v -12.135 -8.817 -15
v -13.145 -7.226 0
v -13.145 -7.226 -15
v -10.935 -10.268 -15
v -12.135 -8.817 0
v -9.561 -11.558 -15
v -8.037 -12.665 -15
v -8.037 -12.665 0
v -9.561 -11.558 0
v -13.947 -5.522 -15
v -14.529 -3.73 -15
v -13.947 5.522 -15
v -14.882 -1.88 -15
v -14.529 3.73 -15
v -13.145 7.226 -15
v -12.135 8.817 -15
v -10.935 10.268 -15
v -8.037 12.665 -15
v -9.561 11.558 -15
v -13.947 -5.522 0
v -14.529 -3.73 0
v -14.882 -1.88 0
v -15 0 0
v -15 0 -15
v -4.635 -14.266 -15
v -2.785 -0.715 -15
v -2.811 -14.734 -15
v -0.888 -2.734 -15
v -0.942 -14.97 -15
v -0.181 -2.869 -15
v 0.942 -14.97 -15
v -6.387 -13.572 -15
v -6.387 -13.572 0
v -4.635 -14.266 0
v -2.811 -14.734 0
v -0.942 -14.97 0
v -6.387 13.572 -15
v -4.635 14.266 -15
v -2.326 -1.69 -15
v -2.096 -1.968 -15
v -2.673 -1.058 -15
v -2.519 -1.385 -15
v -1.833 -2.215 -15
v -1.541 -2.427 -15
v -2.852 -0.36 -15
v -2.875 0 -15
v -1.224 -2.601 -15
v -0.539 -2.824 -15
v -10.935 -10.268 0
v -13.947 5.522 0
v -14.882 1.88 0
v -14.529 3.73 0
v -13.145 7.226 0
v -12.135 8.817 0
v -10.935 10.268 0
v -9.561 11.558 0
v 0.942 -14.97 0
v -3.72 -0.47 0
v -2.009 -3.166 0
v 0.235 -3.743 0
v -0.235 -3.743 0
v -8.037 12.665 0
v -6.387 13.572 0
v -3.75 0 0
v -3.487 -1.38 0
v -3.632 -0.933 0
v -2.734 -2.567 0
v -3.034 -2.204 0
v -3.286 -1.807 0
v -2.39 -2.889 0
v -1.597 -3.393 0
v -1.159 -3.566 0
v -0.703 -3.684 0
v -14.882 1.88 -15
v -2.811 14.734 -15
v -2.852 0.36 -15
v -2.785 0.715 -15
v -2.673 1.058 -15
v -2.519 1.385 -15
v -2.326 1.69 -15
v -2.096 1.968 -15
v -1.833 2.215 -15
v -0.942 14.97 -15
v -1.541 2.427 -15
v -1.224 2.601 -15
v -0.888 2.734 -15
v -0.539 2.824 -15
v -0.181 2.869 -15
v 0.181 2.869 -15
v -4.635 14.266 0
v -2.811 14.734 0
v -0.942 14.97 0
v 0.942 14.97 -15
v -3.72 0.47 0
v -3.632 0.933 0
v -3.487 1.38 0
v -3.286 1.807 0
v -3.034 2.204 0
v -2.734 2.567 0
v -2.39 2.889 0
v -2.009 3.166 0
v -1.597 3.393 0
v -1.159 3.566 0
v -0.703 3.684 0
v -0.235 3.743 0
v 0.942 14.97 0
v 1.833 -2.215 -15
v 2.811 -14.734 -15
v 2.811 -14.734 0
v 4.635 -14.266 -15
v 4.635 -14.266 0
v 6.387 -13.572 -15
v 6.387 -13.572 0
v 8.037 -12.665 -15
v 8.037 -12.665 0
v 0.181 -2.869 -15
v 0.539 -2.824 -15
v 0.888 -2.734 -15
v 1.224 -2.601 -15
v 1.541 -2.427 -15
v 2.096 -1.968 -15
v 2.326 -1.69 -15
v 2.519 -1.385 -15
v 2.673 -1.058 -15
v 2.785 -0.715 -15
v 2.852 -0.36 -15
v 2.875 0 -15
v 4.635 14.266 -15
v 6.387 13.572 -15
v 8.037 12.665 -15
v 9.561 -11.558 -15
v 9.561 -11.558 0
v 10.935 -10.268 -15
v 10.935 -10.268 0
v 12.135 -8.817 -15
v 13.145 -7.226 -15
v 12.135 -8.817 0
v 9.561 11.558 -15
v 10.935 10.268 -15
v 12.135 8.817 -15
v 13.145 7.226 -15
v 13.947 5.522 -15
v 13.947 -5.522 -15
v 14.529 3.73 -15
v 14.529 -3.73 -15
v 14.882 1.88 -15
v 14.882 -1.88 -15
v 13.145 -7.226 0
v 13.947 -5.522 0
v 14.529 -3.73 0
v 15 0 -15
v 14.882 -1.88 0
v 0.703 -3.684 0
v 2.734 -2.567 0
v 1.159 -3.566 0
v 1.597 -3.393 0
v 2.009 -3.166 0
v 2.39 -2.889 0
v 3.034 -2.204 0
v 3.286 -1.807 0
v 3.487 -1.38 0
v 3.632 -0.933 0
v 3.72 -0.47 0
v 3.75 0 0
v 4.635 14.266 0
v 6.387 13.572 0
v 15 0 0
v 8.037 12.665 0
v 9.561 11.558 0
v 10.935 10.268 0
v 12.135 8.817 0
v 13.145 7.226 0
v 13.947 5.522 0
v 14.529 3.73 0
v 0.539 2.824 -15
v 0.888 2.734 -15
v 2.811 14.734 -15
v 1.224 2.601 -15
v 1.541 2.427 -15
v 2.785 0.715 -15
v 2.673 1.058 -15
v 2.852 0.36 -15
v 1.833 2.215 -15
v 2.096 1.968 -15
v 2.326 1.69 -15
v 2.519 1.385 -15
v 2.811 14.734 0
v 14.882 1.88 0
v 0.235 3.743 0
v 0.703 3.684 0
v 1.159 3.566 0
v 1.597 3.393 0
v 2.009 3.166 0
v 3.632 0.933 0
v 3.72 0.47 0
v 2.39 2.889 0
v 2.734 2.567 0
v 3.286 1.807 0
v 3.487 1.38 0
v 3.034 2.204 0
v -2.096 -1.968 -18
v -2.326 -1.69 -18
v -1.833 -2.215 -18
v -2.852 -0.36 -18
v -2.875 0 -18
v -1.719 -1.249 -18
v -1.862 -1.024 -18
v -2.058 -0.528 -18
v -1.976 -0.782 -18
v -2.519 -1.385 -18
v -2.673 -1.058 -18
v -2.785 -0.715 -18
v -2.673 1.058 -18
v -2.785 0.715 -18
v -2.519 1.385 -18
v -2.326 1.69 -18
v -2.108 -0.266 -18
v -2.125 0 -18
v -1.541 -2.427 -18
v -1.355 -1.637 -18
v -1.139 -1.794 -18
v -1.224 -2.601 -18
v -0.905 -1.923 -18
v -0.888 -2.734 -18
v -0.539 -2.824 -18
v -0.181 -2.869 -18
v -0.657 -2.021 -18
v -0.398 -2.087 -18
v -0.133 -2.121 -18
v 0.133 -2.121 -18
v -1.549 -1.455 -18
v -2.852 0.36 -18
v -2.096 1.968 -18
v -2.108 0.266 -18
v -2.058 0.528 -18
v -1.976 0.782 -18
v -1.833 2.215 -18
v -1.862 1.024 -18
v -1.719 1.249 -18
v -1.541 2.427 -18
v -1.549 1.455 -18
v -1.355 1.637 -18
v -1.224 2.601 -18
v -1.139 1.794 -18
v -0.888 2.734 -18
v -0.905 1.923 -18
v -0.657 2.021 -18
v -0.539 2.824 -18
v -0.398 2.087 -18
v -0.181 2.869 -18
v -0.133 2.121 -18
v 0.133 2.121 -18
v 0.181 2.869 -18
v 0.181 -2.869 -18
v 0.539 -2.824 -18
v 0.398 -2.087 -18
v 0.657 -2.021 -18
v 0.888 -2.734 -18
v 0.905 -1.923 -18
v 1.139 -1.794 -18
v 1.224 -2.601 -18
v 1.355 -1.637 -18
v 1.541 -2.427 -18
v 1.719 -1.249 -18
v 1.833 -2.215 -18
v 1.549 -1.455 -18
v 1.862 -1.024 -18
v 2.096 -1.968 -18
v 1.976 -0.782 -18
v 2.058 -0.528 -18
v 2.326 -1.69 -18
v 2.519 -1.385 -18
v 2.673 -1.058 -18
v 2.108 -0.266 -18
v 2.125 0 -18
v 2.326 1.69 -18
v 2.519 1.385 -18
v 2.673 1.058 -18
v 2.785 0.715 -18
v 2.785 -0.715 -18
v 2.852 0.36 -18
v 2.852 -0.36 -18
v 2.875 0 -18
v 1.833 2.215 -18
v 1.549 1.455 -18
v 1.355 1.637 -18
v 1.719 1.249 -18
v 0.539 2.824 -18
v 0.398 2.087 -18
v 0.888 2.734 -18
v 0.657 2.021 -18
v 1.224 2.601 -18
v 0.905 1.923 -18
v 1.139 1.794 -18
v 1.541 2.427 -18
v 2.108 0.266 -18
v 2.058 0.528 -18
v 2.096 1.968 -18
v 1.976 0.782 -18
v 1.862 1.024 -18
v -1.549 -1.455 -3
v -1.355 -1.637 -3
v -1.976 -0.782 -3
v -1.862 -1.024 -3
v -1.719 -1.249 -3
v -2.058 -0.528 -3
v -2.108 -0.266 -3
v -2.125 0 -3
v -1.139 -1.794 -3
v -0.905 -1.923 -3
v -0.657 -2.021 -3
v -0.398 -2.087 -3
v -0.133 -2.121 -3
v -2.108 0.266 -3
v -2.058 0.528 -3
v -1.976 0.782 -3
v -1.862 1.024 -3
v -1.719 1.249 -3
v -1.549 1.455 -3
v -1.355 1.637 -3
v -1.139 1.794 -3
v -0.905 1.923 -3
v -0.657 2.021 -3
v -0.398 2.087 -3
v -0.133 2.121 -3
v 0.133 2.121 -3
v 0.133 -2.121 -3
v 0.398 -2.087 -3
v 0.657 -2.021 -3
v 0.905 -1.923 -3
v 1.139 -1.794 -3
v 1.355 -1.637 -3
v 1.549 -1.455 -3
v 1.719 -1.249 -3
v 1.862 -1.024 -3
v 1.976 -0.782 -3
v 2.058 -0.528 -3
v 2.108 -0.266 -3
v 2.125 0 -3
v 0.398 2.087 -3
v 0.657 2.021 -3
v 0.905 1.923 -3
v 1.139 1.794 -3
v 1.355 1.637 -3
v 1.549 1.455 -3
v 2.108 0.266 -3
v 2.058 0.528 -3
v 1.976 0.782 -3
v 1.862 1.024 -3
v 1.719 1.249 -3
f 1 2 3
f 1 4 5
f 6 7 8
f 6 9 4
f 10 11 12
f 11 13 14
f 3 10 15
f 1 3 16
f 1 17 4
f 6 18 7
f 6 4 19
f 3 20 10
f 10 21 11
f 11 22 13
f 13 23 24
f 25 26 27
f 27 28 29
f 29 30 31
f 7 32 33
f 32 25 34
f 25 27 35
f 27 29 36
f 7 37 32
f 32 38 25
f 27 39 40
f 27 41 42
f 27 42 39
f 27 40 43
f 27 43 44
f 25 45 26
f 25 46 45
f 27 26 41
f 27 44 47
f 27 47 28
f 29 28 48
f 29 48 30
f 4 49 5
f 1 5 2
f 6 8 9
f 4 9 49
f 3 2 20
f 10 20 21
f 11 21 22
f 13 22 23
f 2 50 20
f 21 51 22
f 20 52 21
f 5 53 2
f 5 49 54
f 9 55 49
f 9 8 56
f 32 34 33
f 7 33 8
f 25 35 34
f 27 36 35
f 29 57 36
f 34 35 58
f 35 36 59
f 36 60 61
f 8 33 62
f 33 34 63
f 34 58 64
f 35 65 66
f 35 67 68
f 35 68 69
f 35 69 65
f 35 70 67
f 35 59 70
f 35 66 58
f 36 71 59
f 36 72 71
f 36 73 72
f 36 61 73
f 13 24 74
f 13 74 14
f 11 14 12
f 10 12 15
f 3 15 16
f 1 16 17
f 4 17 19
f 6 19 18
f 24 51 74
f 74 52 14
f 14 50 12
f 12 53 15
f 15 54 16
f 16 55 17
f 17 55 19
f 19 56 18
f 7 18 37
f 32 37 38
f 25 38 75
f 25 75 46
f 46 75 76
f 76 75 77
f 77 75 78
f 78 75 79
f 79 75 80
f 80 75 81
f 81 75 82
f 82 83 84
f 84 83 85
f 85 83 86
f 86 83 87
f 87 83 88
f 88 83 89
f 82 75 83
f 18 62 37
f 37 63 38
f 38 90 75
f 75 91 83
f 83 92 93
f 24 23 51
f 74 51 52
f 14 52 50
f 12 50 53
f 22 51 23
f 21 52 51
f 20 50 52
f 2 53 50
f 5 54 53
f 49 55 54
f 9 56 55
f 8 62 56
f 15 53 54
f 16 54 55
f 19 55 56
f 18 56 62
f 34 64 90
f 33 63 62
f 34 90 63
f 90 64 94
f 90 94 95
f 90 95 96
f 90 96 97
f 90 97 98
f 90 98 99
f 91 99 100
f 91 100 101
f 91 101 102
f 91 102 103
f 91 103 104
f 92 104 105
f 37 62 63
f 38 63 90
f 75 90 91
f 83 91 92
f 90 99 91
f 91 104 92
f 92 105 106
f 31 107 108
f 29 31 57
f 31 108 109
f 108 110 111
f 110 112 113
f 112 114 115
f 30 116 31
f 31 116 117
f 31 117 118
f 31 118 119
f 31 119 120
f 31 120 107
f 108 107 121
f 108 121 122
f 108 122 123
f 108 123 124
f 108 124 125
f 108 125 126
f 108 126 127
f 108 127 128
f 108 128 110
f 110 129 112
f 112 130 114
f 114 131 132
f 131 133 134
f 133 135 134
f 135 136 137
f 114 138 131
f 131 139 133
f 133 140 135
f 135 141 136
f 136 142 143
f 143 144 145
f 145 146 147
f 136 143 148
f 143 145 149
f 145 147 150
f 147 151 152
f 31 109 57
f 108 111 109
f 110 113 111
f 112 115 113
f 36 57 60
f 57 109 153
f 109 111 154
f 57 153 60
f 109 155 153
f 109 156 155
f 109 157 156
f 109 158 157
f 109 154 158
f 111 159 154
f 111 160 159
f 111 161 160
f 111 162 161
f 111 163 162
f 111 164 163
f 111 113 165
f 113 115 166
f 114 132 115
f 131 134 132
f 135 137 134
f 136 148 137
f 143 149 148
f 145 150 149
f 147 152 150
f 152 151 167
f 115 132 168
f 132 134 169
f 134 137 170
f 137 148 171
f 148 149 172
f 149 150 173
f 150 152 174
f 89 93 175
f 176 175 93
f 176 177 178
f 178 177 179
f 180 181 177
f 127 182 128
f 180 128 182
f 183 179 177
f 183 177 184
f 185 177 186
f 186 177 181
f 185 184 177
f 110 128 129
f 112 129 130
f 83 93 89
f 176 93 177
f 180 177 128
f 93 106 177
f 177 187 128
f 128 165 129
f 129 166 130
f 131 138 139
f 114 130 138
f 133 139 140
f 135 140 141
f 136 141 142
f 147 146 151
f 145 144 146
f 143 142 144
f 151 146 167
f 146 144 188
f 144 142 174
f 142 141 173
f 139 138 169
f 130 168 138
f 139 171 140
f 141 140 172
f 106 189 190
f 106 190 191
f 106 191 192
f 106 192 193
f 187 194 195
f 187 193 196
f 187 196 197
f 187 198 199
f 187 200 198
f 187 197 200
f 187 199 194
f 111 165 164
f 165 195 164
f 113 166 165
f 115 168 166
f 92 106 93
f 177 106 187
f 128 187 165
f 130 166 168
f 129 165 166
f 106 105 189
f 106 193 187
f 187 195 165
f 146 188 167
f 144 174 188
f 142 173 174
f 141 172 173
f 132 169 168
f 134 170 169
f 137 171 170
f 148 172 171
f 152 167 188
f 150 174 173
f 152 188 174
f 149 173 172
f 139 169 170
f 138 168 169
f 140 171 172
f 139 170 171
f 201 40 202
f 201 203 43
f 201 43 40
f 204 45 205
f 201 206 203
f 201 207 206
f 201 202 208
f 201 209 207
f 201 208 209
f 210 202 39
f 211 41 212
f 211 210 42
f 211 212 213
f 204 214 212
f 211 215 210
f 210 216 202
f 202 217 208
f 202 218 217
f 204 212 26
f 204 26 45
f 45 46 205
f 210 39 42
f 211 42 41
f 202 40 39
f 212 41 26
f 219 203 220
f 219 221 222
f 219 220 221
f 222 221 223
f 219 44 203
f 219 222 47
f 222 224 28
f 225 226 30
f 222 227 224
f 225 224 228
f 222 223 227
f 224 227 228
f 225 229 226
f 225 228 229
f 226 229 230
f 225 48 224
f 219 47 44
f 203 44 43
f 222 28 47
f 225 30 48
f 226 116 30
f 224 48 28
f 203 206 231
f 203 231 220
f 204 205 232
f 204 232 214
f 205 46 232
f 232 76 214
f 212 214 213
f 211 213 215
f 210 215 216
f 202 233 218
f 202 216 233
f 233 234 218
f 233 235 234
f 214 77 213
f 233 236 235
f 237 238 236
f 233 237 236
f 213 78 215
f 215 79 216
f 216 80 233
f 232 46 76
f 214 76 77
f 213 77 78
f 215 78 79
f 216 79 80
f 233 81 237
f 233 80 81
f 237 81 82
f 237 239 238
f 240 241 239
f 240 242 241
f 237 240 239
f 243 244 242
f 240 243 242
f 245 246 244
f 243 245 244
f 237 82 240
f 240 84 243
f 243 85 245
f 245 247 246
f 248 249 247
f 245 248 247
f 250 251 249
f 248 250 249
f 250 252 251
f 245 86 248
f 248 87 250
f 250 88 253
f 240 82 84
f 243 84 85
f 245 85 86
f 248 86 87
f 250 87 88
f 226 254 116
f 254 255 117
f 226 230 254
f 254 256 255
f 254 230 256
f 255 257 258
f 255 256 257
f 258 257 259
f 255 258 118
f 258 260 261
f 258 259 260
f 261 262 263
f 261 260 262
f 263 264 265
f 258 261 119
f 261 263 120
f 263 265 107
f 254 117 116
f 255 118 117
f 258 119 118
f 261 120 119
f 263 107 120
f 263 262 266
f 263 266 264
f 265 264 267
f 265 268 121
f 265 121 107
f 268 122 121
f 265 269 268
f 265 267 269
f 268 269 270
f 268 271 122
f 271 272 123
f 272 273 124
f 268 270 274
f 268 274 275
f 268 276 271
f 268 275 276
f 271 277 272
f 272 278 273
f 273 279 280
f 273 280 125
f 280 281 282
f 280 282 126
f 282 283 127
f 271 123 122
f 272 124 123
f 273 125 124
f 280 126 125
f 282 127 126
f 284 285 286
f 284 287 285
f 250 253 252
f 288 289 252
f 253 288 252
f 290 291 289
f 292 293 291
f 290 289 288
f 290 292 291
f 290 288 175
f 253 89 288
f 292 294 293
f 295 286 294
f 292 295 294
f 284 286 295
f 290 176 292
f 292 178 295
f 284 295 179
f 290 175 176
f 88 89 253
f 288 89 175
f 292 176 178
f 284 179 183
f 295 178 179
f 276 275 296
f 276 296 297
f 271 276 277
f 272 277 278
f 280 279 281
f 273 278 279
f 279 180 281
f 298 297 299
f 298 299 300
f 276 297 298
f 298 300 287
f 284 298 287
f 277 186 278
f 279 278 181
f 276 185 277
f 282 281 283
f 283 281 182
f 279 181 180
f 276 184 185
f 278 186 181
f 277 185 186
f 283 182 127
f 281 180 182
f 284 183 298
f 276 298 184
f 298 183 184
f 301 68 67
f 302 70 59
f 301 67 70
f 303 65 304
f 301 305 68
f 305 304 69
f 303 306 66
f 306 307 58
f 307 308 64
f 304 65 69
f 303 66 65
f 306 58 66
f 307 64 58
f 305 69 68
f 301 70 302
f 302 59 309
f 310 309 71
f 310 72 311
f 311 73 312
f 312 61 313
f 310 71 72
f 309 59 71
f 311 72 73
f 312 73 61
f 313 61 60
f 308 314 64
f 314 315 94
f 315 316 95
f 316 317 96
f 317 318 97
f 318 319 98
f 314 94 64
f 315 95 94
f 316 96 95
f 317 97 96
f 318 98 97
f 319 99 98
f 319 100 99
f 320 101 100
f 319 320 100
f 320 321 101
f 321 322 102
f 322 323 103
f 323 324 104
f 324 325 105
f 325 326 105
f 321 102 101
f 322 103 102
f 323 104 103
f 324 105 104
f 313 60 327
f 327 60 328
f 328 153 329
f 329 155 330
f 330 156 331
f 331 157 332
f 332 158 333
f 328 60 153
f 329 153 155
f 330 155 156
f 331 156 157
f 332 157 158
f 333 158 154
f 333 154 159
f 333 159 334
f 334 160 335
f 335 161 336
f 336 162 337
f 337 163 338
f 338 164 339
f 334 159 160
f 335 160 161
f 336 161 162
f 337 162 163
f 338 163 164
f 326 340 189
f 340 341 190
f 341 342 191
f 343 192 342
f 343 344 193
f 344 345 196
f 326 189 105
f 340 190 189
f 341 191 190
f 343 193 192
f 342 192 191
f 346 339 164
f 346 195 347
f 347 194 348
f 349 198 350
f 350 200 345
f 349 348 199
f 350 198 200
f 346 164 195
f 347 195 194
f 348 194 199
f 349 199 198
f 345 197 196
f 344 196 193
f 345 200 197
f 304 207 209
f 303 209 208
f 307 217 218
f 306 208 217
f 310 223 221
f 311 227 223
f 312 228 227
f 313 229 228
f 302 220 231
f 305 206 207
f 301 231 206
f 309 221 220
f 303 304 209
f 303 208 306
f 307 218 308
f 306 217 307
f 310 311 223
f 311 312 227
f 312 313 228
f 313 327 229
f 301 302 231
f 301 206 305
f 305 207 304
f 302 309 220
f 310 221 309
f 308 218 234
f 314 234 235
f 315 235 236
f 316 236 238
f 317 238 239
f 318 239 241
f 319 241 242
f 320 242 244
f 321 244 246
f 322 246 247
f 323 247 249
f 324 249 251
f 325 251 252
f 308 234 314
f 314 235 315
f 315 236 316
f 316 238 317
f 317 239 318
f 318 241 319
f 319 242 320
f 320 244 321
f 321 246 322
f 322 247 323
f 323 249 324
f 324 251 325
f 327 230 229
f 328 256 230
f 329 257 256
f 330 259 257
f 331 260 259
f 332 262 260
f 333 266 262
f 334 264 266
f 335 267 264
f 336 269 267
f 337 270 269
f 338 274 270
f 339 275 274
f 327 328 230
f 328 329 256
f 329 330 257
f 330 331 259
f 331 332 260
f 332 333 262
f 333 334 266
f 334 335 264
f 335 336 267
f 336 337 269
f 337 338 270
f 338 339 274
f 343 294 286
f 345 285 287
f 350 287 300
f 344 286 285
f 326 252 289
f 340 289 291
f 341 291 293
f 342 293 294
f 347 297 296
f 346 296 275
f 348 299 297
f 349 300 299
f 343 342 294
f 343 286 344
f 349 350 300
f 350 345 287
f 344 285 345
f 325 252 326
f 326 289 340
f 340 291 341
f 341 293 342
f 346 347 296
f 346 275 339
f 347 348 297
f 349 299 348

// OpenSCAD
$fn = 50;


difference() {
	union() {
		translate(v = [0, 0, -15.0000000000]) {
			cylinder(h = 15, r = 15.0000000000);
		}
		#translate(v = [0, 0, -18.0000000000]) {
			cylinder(h = 18, r = 2.8750000000);
		}
	}
	union() {
		translate(v = [0, 0, 0]) {
			rotate(a = [0, 0, 0]) {
				difference() {
					union() {
						translate(v = [0, 0, -18.0000000000]) {
							cylinder(h = 18, r = 2.0000000000);
						}
						translate(v = [0, 0, -3]) {
							cylinder(h = 3, r1 = 2.1250000000, r2 = 3.7500000000);
						}
						translate(v = [0, 0, -18.0000000000]) {
							cylinder(h = 18, r = 2.1250000000);
						}
						translate(v = [0, 0, -18.0000000000]) {
							cylinder(h = 18, r = 2.0000000000);
						}
					}
					union();
				}
			}
		}
	}
}
